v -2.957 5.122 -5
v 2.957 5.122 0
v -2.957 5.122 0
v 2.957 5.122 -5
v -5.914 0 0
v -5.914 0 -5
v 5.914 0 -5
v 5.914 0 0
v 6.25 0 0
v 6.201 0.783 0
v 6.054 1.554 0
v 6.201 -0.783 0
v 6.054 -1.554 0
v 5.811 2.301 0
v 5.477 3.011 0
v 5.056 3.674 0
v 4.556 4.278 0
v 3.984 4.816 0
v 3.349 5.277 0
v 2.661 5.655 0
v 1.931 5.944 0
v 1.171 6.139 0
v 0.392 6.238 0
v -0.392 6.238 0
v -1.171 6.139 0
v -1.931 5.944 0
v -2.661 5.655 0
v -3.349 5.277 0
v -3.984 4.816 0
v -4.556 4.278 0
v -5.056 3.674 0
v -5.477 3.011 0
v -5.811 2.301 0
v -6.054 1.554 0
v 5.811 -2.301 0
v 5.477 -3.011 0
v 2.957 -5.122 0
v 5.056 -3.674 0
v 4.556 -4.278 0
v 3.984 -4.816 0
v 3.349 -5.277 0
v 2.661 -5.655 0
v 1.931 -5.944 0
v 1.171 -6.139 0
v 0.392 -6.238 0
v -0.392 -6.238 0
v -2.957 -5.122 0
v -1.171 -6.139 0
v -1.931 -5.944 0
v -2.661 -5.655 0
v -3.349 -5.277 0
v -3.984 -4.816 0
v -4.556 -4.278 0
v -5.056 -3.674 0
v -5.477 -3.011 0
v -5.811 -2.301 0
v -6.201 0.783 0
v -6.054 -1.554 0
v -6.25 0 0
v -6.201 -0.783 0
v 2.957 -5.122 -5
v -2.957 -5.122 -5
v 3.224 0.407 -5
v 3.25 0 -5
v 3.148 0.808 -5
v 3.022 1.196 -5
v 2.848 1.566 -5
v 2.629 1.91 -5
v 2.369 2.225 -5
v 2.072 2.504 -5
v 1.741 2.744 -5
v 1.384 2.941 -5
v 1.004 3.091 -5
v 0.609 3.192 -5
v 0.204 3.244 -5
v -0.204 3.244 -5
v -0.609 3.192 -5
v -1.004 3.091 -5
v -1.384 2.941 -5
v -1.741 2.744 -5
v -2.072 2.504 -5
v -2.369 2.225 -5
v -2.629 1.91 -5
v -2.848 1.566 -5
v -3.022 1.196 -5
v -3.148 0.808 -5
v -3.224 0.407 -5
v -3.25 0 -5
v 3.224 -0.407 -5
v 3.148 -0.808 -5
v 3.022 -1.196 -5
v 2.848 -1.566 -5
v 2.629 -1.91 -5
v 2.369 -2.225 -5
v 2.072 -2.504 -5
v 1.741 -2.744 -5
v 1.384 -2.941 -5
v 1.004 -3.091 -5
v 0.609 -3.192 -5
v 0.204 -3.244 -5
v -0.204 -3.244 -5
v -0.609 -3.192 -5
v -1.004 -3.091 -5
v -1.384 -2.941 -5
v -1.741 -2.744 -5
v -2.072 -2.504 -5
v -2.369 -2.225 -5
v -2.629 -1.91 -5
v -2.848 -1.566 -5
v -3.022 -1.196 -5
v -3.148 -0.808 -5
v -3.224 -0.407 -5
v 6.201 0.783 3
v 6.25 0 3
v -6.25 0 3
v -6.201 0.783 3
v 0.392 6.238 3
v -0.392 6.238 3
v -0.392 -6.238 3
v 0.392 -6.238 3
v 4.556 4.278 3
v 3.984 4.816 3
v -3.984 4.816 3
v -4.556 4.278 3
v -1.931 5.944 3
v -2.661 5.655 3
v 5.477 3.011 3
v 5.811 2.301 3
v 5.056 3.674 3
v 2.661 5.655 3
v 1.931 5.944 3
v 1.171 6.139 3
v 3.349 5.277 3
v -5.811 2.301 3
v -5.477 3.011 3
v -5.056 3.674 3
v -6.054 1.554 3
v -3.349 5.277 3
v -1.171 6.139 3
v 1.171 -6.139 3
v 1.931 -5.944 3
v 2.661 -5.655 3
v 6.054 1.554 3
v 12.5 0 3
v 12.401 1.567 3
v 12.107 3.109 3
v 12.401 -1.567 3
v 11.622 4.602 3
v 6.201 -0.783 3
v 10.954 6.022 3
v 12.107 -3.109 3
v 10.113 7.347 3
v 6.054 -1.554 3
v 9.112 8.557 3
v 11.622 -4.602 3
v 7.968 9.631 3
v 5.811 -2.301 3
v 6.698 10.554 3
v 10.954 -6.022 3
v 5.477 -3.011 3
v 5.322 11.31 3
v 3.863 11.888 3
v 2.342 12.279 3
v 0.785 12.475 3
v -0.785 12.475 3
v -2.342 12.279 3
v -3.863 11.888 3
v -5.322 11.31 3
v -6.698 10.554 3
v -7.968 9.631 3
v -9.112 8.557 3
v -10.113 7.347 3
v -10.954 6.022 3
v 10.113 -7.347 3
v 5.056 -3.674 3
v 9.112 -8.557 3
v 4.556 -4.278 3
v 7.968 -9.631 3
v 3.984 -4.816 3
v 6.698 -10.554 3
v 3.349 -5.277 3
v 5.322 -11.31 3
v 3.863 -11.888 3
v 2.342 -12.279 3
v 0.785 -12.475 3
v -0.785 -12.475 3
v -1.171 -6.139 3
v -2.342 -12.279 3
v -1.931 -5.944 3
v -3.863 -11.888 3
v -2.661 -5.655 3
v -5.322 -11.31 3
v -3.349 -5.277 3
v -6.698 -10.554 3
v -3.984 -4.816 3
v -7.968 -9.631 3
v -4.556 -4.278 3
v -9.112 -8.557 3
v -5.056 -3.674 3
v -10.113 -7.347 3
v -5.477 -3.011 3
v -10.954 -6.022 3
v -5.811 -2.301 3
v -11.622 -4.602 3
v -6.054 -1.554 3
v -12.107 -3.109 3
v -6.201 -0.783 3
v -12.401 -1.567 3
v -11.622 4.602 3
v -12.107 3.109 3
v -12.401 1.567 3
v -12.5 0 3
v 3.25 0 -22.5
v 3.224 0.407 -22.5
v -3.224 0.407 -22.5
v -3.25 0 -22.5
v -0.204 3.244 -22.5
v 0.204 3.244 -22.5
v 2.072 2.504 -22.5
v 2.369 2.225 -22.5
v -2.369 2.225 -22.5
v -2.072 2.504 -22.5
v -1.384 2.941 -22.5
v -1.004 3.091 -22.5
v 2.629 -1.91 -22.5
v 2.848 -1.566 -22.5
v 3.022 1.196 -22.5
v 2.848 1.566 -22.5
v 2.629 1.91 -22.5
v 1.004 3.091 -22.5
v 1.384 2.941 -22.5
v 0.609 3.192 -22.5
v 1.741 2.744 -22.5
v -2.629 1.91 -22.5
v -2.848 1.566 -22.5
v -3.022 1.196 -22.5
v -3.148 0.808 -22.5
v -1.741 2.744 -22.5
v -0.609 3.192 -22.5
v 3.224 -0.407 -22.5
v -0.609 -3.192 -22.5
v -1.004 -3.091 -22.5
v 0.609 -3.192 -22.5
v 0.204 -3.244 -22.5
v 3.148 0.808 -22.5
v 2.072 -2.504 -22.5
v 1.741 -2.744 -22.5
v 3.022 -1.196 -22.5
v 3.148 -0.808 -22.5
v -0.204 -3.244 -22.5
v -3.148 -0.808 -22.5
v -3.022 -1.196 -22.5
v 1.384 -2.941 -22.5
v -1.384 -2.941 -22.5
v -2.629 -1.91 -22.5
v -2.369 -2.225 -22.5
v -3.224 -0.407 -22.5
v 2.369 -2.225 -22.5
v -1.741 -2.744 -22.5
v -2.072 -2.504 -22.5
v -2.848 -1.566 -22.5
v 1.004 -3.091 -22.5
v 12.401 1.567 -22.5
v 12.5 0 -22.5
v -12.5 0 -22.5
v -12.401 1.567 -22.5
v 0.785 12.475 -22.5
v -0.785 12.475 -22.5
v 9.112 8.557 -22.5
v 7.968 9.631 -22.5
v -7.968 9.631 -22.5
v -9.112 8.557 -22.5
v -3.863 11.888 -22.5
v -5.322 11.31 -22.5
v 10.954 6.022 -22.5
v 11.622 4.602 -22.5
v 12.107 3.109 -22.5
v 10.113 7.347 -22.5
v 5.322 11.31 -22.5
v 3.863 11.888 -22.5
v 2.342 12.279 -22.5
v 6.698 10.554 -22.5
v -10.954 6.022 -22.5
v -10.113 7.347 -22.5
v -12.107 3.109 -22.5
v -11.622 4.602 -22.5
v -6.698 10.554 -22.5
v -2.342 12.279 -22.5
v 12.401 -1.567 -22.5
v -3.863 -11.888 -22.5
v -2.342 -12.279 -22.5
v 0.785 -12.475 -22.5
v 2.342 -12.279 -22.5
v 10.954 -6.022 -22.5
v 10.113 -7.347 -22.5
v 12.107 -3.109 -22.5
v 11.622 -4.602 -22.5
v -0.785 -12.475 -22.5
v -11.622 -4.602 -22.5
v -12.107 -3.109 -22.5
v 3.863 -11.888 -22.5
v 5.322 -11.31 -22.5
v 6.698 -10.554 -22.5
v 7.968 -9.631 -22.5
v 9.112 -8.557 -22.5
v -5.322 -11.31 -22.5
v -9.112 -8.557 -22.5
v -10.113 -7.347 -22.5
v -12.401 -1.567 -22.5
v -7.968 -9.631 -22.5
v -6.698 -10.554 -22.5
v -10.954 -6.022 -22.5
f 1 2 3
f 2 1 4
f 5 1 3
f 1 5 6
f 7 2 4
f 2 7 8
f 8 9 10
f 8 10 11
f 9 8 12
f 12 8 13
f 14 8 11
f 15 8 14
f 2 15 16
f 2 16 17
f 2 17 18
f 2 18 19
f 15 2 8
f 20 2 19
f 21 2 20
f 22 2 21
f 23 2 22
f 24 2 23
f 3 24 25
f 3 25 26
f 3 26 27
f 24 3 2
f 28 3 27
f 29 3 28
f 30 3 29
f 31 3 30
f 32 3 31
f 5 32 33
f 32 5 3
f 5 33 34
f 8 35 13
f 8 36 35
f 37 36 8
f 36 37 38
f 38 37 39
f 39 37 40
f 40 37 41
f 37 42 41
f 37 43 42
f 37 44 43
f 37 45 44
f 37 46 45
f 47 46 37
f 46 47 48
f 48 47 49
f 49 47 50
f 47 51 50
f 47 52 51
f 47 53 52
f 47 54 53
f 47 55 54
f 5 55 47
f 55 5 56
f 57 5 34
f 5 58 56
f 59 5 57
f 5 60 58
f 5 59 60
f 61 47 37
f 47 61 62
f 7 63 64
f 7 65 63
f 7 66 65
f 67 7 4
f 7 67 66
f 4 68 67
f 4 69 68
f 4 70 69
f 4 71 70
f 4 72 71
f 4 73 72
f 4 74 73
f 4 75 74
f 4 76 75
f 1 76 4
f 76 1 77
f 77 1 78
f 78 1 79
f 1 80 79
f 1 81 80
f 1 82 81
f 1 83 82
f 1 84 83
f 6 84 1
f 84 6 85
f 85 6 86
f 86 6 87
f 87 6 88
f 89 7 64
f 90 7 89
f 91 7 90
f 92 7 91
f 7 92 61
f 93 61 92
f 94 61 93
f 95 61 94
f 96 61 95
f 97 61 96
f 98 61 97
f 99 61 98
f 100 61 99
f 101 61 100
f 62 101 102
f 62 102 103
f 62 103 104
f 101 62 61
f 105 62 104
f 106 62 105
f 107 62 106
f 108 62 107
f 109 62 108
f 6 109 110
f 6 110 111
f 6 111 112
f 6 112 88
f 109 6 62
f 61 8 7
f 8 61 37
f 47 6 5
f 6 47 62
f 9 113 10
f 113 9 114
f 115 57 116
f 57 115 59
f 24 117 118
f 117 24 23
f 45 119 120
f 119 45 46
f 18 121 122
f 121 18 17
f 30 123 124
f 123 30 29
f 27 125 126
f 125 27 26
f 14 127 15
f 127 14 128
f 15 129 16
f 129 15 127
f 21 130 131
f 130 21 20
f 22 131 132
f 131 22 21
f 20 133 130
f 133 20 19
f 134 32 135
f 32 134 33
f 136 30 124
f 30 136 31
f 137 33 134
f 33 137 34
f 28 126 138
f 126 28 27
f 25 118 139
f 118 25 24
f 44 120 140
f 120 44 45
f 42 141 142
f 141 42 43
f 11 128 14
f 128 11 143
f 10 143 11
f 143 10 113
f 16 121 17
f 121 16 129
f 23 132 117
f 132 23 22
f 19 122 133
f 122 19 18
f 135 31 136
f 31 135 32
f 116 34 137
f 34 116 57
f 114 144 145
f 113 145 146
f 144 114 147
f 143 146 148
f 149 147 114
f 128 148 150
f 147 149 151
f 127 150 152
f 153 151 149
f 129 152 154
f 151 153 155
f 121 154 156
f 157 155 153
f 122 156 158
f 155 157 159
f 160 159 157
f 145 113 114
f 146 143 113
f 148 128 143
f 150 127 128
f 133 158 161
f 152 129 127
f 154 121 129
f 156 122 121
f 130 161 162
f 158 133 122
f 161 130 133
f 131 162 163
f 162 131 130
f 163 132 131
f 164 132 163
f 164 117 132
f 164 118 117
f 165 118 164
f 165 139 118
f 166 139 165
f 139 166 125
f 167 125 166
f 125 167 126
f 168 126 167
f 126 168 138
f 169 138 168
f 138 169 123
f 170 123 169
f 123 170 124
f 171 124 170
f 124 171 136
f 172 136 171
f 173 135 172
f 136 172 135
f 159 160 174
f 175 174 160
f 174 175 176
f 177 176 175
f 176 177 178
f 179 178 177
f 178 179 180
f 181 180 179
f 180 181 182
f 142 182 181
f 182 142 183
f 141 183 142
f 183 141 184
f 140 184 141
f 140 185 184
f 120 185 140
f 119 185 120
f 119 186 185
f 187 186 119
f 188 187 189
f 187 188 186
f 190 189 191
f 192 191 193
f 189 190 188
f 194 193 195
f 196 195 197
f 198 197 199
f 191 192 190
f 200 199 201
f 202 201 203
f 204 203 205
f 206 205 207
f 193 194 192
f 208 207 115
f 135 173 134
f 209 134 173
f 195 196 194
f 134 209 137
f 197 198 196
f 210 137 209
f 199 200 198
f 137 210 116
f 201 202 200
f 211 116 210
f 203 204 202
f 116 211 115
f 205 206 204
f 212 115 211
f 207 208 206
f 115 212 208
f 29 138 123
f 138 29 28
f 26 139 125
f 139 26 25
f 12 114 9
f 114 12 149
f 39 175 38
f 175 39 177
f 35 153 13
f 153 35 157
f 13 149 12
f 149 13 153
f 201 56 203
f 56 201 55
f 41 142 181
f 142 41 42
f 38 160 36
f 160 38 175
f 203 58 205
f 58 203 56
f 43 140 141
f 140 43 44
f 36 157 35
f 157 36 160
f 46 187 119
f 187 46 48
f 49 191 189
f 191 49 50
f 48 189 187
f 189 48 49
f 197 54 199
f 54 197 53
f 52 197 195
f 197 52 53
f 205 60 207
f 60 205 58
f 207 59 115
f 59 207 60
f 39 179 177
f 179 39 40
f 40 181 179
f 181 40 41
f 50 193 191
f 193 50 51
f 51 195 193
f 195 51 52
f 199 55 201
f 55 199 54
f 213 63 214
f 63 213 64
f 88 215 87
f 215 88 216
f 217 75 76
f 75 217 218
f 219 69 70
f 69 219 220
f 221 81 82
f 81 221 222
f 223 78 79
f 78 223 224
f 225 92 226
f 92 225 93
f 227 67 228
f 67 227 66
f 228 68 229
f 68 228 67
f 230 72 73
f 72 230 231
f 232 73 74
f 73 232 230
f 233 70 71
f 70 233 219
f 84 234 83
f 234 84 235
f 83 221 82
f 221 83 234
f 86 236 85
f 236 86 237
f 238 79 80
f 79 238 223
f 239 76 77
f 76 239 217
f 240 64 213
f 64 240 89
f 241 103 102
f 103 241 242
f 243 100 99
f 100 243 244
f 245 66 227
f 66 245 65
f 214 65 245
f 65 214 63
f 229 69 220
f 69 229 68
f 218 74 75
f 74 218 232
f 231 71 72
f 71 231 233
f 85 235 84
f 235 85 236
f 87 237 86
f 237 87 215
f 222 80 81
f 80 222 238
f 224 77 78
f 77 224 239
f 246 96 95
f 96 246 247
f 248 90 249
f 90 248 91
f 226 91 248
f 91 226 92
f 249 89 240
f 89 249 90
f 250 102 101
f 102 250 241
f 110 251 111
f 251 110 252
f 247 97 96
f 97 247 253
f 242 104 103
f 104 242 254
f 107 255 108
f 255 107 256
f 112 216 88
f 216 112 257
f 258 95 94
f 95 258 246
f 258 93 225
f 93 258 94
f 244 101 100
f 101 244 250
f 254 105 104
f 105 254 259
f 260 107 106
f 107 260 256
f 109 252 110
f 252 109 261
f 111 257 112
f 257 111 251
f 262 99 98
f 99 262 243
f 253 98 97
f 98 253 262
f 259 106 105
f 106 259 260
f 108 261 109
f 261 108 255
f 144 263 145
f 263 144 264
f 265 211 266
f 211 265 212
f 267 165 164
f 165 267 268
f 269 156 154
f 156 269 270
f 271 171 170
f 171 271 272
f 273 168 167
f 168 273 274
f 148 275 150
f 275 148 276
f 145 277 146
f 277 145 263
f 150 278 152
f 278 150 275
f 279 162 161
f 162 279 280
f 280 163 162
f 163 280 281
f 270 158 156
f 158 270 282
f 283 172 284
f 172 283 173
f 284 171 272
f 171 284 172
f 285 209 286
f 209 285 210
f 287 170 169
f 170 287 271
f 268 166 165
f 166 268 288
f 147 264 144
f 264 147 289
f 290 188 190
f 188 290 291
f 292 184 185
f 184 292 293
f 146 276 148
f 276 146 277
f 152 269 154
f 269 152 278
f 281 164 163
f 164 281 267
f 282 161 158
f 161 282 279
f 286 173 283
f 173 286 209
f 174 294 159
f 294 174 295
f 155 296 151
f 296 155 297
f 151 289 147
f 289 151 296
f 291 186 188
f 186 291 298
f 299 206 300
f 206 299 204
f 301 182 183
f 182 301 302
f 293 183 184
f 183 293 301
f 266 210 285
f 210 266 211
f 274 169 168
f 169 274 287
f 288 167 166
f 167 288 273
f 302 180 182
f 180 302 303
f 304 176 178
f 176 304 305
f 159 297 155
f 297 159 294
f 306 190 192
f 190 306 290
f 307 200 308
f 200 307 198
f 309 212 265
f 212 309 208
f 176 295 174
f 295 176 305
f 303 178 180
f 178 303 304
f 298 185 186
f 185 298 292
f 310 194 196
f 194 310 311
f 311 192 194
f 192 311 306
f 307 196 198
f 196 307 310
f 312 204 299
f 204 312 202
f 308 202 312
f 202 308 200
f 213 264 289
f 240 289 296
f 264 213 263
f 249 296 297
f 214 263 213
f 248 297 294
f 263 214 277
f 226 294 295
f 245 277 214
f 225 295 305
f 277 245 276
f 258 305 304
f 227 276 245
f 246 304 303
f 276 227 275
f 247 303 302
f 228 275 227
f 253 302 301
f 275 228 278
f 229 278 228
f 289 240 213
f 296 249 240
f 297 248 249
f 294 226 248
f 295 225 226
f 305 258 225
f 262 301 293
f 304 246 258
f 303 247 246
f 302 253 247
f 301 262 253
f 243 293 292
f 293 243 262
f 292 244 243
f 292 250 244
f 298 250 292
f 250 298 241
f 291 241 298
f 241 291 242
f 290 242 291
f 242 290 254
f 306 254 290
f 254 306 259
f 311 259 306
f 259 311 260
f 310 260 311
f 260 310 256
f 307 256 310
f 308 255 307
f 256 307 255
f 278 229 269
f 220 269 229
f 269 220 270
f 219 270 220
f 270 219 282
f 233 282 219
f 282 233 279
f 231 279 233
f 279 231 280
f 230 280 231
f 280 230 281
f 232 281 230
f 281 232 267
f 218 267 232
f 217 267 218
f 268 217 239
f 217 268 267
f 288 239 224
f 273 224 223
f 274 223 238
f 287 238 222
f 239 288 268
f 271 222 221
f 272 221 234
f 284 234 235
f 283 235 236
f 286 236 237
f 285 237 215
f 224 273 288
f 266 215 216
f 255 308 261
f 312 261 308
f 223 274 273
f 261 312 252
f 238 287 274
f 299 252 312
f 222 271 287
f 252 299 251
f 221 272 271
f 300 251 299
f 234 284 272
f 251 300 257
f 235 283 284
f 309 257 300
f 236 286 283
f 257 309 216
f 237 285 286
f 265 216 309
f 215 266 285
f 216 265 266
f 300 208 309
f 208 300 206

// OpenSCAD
$fn = 50;

difference() {
	union() {
		translate(v = [0, 0, -22.5]) {
			cylinder(h = 25.5, r = 12.5);
		}
	}
	union() {
		translate(v = [0, 0, 0]) {
			rotate(a = [0, 0, 0]) {
				difference() {
					union() {
						translate(v = [0, 0, -5]) {
							linear_extrude(height = 5) {
								polygon(points = [[5.914249999999999, 0.0], [2.957125, 5.1218907443321156], [-2.9571249999999982, 5.1218907443321156], [-5.914249999999999, 7.242867331857232e-16], [-2.9571250000000022, -5.121890744332115], [2.9571249999999956, -5.121890744332118]]);
							}
						}
					}
					union();
				}
			}
		}
		#cylinder(h = 3, r = 6.25);
		#translate(v = [0, 0, -100.0]) {
			cylinder(h = 200, r = 3.25);
		}
	}
}
